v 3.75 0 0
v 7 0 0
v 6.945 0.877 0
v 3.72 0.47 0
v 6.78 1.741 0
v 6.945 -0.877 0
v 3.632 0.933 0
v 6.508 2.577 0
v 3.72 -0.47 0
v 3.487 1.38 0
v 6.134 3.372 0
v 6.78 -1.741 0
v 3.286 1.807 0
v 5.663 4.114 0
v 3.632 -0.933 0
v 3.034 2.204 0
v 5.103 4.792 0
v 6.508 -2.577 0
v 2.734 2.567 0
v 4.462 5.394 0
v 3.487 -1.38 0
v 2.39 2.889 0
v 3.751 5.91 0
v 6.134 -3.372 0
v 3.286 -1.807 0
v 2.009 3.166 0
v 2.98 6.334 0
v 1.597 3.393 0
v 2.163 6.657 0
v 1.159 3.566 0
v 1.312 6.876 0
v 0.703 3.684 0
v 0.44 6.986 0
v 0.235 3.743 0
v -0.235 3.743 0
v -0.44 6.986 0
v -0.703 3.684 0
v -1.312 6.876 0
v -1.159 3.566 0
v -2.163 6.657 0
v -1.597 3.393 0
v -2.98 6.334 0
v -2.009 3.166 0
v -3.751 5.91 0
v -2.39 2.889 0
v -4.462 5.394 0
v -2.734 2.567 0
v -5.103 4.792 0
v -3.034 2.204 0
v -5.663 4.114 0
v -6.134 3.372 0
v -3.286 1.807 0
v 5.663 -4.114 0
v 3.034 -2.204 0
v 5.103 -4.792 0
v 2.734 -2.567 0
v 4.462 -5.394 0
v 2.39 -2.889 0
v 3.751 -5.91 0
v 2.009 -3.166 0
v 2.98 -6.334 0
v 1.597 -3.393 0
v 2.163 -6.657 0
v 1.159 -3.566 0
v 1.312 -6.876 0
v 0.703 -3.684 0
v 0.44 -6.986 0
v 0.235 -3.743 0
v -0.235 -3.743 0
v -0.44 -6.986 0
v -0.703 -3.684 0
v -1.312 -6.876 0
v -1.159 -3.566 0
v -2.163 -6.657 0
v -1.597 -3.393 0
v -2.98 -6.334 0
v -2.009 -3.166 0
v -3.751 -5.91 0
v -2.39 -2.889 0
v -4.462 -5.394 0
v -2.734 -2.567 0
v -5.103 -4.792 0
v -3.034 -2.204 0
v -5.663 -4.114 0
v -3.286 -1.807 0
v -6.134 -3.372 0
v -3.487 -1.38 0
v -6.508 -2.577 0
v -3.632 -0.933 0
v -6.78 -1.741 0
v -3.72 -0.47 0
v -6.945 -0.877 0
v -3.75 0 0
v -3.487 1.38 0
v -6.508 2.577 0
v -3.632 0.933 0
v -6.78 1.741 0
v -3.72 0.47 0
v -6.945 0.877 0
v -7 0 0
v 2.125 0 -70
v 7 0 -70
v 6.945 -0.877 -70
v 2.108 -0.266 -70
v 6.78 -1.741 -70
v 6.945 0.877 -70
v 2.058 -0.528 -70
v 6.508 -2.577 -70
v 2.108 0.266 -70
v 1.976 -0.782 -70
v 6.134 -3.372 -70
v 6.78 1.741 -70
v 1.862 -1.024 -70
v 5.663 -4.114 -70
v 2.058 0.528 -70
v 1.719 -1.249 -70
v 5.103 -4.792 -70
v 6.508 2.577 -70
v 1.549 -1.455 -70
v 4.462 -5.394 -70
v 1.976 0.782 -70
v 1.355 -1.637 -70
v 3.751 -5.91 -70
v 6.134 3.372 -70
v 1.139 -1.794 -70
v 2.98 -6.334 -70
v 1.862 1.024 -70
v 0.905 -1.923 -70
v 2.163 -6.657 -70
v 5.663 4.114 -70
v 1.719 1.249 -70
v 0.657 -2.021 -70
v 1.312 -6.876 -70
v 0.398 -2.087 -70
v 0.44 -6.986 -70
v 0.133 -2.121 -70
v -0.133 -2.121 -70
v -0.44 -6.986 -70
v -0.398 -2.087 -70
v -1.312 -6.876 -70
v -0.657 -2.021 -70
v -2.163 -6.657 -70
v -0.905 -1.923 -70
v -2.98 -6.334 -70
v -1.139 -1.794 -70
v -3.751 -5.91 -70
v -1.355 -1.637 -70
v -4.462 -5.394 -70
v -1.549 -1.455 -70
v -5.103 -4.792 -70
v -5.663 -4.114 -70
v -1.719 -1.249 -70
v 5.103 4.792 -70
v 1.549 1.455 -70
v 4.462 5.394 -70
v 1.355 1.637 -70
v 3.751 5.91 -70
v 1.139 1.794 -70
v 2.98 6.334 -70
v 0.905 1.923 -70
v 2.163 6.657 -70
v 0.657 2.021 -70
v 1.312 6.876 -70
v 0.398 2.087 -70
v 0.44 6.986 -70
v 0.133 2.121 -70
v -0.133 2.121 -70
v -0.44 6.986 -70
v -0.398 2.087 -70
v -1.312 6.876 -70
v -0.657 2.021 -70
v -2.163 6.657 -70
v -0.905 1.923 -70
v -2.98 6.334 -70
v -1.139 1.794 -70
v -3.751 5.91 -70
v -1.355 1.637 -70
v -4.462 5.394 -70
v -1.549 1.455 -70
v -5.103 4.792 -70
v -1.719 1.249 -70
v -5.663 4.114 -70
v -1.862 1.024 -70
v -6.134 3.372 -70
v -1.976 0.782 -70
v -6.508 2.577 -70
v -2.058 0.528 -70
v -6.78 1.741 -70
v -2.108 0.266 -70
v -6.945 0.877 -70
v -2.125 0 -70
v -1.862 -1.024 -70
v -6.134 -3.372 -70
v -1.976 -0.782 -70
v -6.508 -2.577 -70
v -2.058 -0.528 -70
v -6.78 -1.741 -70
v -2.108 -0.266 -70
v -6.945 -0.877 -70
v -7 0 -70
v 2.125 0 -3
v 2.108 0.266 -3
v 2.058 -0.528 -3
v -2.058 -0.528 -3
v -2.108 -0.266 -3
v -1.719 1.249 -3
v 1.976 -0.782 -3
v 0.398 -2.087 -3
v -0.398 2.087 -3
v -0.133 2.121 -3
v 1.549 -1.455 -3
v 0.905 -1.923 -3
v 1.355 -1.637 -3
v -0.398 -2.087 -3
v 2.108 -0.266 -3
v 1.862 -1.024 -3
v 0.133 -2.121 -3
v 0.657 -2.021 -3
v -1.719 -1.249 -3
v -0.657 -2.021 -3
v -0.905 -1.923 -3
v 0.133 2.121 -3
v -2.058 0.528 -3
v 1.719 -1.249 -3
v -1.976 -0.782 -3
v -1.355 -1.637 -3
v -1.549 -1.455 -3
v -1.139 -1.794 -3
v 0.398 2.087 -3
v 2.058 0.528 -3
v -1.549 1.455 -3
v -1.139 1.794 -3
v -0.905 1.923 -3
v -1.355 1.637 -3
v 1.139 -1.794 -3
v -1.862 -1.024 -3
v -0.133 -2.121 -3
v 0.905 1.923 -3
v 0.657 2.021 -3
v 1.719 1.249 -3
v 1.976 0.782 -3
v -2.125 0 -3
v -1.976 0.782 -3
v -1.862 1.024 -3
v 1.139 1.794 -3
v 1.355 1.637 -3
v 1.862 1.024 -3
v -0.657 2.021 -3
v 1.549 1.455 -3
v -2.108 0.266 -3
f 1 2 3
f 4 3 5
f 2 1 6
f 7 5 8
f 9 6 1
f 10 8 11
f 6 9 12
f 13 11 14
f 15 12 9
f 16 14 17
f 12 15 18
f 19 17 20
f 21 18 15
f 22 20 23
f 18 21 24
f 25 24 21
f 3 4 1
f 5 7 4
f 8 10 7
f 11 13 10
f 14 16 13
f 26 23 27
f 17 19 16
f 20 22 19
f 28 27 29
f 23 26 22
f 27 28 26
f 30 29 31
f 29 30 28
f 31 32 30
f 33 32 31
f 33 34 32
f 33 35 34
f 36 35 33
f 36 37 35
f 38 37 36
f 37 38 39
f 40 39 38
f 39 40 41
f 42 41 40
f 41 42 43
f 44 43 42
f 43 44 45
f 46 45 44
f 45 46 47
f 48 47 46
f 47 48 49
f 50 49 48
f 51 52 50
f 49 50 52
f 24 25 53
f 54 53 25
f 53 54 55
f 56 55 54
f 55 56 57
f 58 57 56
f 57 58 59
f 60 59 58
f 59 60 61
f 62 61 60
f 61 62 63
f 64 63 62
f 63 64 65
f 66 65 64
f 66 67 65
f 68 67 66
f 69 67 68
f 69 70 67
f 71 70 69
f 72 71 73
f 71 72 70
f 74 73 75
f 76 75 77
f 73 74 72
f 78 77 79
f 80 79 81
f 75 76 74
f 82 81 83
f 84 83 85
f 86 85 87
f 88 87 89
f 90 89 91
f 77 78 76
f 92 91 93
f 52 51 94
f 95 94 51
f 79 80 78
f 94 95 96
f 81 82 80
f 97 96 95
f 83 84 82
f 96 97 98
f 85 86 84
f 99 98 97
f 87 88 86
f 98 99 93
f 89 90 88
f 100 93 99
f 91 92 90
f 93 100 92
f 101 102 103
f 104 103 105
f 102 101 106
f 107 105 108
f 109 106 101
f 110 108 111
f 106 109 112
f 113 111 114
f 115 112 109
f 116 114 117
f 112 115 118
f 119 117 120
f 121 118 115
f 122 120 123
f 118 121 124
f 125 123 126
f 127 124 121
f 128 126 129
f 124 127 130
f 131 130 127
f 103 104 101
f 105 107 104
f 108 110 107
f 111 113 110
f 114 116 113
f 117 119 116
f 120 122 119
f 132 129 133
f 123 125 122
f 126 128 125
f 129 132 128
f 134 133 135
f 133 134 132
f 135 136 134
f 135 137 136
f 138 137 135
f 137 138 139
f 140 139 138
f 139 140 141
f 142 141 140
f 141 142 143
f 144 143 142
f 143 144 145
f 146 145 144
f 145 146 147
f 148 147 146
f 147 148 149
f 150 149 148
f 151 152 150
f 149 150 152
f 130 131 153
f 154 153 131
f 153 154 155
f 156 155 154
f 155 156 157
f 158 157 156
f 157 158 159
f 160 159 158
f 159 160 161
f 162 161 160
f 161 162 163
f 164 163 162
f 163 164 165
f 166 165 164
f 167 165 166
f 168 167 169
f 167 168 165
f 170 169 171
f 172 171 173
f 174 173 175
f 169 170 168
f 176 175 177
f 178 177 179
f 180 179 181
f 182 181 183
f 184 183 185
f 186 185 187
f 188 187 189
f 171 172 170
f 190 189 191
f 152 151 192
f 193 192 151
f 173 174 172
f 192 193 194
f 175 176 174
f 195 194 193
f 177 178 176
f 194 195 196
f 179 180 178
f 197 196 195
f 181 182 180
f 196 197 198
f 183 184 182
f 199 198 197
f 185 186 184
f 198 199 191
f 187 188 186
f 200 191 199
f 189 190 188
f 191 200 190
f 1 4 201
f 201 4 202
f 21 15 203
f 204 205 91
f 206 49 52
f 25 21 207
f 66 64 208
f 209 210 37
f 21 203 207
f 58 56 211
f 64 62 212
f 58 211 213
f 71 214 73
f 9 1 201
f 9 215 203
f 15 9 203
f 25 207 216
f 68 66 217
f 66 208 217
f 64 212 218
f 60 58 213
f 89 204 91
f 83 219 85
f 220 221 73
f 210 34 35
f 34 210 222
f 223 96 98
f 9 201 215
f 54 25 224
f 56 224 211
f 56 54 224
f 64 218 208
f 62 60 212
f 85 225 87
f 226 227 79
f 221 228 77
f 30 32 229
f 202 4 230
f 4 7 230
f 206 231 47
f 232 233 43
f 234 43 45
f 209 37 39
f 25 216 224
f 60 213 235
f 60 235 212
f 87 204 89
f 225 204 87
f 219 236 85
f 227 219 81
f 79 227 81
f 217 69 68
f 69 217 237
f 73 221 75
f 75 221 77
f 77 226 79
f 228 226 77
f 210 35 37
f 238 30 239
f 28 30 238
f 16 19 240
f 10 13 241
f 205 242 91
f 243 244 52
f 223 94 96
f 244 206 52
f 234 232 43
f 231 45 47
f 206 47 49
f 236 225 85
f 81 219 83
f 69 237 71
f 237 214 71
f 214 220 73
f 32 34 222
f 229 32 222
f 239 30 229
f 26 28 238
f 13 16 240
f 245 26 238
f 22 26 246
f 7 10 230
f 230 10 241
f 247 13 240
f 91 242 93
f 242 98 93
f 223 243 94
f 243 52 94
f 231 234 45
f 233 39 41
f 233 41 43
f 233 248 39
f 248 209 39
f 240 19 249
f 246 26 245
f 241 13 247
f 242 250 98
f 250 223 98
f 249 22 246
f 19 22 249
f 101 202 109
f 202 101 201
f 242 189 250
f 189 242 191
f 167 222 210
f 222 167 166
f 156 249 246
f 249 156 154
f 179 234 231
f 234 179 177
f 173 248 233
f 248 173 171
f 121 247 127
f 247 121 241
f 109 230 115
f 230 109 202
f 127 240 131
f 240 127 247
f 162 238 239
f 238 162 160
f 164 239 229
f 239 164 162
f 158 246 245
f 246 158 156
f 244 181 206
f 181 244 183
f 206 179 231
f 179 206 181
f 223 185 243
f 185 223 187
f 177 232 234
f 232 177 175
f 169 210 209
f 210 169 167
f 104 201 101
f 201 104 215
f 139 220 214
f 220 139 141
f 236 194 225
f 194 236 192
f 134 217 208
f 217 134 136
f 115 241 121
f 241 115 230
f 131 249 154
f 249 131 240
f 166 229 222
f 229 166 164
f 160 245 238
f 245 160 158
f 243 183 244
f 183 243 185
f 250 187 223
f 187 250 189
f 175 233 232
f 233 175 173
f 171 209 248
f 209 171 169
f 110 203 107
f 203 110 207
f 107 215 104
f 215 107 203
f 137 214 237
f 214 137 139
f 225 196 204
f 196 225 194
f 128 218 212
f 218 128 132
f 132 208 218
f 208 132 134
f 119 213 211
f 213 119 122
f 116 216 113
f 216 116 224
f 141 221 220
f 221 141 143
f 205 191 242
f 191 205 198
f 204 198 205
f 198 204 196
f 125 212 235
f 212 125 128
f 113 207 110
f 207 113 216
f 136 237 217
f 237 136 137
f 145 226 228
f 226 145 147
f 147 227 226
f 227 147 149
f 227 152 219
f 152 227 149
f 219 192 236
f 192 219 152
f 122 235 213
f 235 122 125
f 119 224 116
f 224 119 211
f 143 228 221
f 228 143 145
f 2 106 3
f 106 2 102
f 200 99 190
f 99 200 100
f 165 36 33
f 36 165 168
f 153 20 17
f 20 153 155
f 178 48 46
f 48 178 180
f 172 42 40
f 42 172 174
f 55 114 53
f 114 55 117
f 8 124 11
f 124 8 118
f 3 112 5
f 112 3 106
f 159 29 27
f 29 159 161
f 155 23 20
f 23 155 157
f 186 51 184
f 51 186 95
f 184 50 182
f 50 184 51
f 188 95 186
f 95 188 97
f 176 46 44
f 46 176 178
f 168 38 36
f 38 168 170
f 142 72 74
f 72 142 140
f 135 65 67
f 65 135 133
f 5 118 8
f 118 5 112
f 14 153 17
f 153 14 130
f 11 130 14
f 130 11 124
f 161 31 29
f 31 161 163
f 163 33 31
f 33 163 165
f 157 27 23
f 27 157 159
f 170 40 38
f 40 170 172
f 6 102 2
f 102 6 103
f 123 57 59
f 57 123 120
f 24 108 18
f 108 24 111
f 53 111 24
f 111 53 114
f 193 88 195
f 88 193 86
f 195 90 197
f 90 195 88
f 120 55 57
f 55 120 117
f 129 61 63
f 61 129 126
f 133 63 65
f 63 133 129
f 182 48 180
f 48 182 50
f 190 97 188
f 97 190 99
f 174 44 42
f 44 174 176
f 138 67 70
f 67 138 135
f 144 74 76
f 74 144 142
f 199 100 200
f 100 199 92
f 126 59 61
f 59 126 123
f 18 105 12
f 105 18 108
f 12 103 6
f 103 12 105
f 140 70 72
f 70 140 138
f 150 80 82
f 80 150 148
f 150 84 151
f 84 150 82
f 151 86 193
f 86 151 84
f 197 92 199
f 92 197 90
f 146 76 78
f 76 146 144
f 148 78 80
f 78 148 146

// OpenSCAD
$fn = 50;


difference() {
	union() {
		translate(v = [0, 0, -70.0000000000]) {
			cylinder(h = 70, r = 7.0000000000);
		}
		cylinder(h = 0, r = 16.0000000000);
	}
	union() {
		translate(v = [0, 0, 0]) {
			rotate(a = [0, 0, 0]) {
				difference() {
					union() {
						#translate(v = [0, 0, -70.0000000000]) {
							cylinder(h = 70, r = 2.0000000000);
						}
						#translate(v = [0, 0, -3]) {
							cylinder(h = 3, r1 = 2.1250000000, r2 = 3.7500000000);
						}
						#translate(v = [0, 0, -70.0000000000]) {
							cylinder(h = 70, r = 2.1250000000);
						}
						#translate(v = [0, 0, -70.0000000000]) {
							cylinder(h = 70, r = 2.0000000000);
						}
					}
					union();
				}
			}
		}
	}
}
